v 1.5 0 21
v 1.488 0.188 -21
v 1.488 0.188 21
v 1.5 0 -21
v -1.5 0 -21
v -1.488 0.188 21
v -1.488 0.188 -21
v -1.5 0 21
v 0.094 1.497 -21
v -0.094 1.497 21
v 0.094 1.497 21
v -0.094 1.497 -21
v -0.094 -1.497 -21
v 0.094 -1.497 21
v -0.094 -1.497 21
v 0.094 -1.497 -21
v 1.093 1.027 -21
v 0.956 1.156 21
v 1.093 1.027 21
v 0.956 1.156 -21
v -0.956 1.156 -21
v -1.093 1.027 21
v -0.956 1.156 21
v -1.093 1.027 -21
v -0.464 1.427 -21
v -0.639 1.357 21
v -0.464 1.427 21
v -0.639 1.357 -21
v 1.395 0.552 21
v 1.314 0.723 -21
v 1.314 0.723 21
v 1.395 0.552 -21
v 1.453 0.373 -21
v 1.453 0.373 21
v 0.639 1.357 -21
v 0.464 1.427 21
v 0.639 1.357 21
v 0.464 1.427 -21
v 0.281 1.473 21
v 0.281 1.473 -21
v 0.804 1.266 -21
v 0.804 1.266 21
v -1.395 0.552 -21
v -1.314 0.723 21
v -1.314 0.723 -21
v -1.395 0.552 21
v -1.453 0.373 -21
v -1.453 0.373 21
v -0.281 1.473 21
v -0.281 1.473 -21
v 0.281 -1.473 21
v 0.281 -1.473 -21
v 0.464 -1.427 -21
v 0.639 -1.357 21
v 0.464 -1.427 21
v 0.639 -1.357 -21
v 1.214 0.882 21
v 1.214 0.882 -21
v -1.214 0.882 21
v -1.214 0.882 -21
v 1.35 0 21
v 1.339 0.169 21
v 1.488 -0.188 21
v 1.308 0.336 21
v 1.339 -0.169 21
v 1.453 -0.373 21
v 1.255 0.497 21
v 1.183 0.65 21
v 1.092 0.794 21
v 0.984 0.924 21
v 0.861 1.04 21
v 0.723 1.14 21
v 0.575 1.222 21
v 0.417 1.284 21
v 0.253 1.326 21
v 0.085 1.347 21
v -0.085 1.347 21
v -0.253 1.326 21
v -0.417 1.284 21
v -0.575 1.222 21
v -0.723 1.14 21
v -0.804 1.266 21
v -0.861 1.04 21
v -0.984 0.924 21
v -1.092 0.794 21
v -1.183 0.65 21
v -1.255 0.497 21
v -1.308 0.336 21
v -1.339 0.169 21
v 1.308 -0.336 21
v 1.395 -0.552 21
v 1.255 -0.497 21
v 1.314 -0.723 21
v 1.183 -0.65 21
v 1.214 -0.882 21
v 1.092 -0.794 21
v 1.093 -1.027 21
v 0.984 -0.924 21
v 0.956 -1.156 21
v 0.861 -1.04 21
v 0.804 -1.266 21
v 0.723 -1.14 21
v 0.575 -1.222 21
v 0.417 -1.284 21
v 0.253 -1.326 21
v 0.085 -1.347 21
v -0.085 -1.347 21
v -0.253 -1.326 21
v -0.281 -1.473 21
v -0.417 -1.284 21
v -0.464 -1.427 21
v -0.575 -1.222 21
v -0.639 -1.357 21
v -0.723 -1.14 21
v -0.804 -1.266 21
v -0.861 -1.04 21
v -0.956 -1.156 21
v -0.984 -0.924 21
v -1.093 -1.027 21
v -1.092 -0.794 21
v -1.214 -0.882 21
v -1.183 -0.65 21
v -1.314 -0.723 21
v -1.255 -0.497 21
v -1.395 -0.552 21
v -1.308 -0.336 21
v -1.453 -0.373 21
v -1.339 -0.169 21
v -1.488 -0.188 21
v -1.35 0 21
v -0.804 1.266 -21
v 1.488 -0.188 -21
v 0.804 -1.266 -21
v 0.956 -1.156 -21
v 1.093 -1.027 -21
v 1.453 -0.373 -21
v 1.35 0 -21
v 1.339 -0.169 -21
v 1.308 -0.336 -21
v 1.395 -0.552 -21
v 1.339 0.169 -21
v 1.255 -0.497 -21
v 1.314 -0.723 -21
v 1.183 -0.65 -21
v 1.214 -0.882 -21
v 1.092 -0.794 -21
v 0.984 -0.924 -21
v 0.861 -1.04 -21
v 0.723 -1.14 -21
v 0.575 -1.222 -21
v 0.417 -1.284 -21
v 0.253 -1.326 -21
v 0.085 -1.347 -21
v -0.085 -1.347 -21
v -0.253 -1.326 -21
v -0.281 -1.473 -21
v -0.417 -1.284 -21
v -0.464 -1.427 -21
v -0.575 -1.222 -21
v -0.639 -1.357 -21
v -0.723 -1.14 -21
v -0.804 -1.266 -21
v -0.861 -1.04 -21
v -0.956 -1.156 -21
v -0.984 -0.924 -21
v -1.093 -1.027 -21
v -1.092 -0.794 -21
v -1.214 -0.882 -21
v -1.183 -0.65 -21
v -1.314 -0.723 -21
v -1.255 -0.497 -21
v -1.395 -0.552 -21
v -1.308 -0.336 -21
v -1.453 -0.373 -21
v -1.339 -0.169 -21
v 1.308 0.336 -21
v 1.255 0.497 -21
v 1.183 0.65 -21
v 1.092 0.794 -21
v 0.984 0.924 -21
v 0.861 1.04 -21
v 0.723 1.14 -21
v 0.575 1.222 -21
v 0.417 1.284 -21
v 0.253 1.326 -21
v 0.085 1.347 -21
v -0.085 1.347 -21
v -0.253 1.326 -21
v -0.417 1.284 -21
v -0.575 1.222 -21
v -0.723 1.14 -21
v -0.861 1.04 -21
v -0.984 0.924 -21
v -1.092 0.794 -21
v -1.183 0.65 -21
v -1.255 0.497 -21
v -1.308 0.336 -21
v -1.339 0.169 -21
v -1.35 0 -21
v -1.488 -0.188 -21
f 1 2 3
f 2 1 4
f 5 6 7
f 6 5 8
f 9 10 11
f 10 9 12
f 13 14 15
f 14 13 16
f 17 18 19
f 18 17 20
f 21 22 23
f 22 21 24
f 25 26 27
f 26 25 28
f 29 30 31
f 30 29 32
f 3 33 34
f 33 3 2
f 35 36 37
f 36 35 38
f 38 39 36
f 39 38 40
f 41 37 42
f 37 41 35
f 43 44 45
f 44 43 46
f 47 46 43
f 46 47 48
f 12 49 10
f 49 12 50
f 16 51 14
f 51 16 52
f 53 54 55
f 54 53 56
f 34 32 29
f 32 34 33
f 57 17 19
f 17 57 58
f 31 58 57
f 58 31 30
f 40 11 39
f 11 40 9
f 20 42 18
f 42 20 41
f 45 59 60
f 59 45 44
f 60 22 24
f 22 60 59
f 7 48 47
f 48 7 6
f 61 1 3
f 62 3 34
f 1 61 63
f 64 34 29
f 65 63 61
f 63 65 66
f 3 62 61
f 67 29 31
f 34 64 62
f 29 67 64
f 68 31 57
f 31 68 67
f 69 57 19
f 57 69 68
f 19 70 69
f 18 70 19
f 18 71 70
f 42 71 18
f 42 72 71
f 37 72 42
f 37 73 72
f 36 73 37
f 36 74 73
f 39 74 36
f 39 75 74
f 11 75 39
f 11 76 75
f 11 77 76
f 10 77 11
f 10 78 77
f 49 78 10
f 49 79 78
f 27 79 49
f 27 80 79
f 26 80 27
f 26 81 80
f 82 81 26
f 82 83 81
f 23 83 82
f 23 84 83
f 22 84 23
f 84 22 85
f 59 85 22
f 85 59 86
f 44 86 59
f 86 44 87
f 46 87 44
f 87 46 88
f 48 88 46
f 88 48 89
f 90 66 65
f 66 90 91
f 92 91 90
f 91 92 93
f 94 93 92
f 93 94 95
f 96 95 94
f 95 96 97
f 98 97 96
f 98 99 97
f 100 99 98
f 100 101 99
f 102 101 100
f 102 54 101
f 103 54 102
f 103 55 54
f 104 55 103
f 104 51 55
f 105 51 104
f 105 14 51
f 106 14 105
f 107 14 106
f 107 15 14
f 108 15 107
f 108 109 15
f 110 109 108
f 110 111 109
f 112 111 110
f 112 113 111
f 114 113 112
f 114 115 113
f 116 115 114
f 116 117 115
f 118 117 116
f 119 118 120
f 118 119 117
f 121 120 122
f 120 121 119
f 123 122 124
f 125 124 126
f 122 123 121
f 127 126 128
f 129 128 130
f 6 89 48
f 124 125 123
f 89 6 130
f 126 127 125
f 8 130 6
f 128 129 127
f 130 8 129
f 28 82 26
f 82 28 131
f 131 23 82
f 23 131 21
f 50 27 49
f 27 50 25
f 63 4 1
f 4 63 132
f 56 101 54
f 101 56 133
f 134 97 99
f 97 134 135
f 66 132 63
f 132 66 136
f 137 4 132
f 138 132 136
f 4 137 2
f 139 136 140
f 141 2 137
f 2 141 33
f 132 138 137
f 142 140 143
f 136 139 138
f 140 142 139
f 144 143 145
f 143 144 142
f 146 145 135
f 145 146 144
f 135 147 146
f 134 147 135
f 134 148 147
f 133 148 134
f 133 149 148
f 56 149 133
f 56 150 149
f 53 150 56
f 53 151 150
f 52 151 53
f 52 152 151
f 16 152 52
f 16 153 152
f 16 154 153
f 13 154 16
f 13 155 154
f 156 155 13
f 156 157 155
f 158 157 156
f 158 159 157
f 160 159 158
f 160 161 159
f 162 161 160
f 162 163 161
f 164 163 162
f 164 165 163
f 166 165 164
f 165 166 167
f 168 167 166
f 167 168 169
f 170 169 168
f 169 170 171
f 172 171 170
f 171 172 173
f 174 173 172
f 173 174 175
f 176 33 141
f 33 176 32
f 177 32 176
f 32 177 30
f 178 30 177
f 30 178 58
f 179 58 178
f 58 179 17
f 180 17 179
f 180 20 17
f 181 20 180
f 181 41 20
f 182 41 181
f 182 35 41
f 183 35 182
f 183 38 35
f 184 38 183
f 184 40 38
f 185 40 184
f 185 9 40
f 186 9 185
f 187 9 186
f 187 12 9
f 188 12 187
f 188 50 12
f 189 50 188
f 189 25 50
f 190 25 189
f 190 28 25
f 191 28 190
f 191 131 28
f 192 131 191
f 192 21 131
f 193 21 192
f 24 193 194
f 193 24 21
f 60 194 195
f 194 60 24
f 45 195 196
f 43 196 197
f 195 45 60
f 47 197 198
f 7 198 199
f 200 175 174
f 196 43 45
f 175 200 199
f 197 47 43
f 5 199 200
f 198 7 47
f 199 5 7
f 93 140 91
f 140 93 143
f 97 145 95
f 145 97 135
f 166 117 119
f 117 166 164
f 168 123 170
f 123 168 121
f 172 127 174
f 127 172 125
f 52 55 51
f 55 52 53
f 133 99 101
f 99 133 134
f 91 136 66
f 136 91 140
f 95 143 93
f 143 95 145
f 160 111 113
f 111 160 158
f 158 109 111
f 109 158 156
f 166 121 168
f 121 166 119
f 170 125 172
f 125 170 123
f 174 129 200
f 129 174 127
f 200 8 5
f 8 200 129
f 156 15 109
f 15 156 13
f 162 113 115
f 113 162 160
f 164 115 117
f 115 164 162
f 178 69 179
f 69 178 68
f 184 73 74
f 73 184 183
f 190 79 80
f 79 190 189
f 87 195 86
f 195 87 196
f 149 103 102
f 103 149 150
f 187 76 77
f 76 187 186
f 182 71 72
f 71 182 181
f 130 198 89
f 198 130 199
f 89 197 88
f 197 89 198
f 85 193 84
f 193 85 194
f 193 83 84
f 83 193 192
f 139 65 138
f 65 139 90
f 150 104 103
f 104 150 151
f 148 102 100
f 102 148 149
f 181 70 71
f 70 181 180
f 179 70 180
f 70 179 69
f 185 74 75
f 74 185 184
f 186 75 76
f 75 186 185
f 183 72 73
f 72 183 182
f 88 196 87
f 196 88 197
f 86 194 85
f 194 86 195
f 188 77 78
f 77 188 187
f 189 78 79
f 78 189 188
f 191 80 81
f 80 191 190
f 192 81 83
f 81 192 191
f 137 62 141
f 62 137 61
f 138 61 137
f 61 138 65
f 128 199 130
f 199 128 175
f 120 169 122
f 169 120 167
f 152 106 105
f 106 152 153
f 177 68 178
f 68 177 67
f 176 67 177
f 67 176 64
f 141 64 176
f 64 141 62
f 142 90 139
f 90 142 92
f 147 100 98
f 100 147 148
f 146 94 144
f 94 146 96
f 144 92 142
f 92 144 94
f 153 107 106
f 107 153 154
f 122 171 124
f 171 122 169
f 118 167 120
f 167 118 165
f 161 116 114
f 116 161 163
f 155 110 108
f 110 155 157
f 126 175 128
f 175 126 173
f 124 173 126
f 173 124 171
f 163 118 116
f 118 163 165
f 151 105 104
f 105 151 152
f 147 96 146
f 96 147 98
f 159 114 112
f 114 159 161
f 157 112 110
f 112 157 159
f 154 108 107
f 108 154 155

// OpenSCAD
$fn = 50;


difference() {
	union() {
		translate(v = [0, 0, -21.0000000000]) {
			cylinder(h = 42, r = 1.5000000000);
		}
	}
	union() {
		translate(v = [0, 0, -100.0000000000]) {
			cylinder(h = 200, r = 1.3500000000);
		}
	}
}
